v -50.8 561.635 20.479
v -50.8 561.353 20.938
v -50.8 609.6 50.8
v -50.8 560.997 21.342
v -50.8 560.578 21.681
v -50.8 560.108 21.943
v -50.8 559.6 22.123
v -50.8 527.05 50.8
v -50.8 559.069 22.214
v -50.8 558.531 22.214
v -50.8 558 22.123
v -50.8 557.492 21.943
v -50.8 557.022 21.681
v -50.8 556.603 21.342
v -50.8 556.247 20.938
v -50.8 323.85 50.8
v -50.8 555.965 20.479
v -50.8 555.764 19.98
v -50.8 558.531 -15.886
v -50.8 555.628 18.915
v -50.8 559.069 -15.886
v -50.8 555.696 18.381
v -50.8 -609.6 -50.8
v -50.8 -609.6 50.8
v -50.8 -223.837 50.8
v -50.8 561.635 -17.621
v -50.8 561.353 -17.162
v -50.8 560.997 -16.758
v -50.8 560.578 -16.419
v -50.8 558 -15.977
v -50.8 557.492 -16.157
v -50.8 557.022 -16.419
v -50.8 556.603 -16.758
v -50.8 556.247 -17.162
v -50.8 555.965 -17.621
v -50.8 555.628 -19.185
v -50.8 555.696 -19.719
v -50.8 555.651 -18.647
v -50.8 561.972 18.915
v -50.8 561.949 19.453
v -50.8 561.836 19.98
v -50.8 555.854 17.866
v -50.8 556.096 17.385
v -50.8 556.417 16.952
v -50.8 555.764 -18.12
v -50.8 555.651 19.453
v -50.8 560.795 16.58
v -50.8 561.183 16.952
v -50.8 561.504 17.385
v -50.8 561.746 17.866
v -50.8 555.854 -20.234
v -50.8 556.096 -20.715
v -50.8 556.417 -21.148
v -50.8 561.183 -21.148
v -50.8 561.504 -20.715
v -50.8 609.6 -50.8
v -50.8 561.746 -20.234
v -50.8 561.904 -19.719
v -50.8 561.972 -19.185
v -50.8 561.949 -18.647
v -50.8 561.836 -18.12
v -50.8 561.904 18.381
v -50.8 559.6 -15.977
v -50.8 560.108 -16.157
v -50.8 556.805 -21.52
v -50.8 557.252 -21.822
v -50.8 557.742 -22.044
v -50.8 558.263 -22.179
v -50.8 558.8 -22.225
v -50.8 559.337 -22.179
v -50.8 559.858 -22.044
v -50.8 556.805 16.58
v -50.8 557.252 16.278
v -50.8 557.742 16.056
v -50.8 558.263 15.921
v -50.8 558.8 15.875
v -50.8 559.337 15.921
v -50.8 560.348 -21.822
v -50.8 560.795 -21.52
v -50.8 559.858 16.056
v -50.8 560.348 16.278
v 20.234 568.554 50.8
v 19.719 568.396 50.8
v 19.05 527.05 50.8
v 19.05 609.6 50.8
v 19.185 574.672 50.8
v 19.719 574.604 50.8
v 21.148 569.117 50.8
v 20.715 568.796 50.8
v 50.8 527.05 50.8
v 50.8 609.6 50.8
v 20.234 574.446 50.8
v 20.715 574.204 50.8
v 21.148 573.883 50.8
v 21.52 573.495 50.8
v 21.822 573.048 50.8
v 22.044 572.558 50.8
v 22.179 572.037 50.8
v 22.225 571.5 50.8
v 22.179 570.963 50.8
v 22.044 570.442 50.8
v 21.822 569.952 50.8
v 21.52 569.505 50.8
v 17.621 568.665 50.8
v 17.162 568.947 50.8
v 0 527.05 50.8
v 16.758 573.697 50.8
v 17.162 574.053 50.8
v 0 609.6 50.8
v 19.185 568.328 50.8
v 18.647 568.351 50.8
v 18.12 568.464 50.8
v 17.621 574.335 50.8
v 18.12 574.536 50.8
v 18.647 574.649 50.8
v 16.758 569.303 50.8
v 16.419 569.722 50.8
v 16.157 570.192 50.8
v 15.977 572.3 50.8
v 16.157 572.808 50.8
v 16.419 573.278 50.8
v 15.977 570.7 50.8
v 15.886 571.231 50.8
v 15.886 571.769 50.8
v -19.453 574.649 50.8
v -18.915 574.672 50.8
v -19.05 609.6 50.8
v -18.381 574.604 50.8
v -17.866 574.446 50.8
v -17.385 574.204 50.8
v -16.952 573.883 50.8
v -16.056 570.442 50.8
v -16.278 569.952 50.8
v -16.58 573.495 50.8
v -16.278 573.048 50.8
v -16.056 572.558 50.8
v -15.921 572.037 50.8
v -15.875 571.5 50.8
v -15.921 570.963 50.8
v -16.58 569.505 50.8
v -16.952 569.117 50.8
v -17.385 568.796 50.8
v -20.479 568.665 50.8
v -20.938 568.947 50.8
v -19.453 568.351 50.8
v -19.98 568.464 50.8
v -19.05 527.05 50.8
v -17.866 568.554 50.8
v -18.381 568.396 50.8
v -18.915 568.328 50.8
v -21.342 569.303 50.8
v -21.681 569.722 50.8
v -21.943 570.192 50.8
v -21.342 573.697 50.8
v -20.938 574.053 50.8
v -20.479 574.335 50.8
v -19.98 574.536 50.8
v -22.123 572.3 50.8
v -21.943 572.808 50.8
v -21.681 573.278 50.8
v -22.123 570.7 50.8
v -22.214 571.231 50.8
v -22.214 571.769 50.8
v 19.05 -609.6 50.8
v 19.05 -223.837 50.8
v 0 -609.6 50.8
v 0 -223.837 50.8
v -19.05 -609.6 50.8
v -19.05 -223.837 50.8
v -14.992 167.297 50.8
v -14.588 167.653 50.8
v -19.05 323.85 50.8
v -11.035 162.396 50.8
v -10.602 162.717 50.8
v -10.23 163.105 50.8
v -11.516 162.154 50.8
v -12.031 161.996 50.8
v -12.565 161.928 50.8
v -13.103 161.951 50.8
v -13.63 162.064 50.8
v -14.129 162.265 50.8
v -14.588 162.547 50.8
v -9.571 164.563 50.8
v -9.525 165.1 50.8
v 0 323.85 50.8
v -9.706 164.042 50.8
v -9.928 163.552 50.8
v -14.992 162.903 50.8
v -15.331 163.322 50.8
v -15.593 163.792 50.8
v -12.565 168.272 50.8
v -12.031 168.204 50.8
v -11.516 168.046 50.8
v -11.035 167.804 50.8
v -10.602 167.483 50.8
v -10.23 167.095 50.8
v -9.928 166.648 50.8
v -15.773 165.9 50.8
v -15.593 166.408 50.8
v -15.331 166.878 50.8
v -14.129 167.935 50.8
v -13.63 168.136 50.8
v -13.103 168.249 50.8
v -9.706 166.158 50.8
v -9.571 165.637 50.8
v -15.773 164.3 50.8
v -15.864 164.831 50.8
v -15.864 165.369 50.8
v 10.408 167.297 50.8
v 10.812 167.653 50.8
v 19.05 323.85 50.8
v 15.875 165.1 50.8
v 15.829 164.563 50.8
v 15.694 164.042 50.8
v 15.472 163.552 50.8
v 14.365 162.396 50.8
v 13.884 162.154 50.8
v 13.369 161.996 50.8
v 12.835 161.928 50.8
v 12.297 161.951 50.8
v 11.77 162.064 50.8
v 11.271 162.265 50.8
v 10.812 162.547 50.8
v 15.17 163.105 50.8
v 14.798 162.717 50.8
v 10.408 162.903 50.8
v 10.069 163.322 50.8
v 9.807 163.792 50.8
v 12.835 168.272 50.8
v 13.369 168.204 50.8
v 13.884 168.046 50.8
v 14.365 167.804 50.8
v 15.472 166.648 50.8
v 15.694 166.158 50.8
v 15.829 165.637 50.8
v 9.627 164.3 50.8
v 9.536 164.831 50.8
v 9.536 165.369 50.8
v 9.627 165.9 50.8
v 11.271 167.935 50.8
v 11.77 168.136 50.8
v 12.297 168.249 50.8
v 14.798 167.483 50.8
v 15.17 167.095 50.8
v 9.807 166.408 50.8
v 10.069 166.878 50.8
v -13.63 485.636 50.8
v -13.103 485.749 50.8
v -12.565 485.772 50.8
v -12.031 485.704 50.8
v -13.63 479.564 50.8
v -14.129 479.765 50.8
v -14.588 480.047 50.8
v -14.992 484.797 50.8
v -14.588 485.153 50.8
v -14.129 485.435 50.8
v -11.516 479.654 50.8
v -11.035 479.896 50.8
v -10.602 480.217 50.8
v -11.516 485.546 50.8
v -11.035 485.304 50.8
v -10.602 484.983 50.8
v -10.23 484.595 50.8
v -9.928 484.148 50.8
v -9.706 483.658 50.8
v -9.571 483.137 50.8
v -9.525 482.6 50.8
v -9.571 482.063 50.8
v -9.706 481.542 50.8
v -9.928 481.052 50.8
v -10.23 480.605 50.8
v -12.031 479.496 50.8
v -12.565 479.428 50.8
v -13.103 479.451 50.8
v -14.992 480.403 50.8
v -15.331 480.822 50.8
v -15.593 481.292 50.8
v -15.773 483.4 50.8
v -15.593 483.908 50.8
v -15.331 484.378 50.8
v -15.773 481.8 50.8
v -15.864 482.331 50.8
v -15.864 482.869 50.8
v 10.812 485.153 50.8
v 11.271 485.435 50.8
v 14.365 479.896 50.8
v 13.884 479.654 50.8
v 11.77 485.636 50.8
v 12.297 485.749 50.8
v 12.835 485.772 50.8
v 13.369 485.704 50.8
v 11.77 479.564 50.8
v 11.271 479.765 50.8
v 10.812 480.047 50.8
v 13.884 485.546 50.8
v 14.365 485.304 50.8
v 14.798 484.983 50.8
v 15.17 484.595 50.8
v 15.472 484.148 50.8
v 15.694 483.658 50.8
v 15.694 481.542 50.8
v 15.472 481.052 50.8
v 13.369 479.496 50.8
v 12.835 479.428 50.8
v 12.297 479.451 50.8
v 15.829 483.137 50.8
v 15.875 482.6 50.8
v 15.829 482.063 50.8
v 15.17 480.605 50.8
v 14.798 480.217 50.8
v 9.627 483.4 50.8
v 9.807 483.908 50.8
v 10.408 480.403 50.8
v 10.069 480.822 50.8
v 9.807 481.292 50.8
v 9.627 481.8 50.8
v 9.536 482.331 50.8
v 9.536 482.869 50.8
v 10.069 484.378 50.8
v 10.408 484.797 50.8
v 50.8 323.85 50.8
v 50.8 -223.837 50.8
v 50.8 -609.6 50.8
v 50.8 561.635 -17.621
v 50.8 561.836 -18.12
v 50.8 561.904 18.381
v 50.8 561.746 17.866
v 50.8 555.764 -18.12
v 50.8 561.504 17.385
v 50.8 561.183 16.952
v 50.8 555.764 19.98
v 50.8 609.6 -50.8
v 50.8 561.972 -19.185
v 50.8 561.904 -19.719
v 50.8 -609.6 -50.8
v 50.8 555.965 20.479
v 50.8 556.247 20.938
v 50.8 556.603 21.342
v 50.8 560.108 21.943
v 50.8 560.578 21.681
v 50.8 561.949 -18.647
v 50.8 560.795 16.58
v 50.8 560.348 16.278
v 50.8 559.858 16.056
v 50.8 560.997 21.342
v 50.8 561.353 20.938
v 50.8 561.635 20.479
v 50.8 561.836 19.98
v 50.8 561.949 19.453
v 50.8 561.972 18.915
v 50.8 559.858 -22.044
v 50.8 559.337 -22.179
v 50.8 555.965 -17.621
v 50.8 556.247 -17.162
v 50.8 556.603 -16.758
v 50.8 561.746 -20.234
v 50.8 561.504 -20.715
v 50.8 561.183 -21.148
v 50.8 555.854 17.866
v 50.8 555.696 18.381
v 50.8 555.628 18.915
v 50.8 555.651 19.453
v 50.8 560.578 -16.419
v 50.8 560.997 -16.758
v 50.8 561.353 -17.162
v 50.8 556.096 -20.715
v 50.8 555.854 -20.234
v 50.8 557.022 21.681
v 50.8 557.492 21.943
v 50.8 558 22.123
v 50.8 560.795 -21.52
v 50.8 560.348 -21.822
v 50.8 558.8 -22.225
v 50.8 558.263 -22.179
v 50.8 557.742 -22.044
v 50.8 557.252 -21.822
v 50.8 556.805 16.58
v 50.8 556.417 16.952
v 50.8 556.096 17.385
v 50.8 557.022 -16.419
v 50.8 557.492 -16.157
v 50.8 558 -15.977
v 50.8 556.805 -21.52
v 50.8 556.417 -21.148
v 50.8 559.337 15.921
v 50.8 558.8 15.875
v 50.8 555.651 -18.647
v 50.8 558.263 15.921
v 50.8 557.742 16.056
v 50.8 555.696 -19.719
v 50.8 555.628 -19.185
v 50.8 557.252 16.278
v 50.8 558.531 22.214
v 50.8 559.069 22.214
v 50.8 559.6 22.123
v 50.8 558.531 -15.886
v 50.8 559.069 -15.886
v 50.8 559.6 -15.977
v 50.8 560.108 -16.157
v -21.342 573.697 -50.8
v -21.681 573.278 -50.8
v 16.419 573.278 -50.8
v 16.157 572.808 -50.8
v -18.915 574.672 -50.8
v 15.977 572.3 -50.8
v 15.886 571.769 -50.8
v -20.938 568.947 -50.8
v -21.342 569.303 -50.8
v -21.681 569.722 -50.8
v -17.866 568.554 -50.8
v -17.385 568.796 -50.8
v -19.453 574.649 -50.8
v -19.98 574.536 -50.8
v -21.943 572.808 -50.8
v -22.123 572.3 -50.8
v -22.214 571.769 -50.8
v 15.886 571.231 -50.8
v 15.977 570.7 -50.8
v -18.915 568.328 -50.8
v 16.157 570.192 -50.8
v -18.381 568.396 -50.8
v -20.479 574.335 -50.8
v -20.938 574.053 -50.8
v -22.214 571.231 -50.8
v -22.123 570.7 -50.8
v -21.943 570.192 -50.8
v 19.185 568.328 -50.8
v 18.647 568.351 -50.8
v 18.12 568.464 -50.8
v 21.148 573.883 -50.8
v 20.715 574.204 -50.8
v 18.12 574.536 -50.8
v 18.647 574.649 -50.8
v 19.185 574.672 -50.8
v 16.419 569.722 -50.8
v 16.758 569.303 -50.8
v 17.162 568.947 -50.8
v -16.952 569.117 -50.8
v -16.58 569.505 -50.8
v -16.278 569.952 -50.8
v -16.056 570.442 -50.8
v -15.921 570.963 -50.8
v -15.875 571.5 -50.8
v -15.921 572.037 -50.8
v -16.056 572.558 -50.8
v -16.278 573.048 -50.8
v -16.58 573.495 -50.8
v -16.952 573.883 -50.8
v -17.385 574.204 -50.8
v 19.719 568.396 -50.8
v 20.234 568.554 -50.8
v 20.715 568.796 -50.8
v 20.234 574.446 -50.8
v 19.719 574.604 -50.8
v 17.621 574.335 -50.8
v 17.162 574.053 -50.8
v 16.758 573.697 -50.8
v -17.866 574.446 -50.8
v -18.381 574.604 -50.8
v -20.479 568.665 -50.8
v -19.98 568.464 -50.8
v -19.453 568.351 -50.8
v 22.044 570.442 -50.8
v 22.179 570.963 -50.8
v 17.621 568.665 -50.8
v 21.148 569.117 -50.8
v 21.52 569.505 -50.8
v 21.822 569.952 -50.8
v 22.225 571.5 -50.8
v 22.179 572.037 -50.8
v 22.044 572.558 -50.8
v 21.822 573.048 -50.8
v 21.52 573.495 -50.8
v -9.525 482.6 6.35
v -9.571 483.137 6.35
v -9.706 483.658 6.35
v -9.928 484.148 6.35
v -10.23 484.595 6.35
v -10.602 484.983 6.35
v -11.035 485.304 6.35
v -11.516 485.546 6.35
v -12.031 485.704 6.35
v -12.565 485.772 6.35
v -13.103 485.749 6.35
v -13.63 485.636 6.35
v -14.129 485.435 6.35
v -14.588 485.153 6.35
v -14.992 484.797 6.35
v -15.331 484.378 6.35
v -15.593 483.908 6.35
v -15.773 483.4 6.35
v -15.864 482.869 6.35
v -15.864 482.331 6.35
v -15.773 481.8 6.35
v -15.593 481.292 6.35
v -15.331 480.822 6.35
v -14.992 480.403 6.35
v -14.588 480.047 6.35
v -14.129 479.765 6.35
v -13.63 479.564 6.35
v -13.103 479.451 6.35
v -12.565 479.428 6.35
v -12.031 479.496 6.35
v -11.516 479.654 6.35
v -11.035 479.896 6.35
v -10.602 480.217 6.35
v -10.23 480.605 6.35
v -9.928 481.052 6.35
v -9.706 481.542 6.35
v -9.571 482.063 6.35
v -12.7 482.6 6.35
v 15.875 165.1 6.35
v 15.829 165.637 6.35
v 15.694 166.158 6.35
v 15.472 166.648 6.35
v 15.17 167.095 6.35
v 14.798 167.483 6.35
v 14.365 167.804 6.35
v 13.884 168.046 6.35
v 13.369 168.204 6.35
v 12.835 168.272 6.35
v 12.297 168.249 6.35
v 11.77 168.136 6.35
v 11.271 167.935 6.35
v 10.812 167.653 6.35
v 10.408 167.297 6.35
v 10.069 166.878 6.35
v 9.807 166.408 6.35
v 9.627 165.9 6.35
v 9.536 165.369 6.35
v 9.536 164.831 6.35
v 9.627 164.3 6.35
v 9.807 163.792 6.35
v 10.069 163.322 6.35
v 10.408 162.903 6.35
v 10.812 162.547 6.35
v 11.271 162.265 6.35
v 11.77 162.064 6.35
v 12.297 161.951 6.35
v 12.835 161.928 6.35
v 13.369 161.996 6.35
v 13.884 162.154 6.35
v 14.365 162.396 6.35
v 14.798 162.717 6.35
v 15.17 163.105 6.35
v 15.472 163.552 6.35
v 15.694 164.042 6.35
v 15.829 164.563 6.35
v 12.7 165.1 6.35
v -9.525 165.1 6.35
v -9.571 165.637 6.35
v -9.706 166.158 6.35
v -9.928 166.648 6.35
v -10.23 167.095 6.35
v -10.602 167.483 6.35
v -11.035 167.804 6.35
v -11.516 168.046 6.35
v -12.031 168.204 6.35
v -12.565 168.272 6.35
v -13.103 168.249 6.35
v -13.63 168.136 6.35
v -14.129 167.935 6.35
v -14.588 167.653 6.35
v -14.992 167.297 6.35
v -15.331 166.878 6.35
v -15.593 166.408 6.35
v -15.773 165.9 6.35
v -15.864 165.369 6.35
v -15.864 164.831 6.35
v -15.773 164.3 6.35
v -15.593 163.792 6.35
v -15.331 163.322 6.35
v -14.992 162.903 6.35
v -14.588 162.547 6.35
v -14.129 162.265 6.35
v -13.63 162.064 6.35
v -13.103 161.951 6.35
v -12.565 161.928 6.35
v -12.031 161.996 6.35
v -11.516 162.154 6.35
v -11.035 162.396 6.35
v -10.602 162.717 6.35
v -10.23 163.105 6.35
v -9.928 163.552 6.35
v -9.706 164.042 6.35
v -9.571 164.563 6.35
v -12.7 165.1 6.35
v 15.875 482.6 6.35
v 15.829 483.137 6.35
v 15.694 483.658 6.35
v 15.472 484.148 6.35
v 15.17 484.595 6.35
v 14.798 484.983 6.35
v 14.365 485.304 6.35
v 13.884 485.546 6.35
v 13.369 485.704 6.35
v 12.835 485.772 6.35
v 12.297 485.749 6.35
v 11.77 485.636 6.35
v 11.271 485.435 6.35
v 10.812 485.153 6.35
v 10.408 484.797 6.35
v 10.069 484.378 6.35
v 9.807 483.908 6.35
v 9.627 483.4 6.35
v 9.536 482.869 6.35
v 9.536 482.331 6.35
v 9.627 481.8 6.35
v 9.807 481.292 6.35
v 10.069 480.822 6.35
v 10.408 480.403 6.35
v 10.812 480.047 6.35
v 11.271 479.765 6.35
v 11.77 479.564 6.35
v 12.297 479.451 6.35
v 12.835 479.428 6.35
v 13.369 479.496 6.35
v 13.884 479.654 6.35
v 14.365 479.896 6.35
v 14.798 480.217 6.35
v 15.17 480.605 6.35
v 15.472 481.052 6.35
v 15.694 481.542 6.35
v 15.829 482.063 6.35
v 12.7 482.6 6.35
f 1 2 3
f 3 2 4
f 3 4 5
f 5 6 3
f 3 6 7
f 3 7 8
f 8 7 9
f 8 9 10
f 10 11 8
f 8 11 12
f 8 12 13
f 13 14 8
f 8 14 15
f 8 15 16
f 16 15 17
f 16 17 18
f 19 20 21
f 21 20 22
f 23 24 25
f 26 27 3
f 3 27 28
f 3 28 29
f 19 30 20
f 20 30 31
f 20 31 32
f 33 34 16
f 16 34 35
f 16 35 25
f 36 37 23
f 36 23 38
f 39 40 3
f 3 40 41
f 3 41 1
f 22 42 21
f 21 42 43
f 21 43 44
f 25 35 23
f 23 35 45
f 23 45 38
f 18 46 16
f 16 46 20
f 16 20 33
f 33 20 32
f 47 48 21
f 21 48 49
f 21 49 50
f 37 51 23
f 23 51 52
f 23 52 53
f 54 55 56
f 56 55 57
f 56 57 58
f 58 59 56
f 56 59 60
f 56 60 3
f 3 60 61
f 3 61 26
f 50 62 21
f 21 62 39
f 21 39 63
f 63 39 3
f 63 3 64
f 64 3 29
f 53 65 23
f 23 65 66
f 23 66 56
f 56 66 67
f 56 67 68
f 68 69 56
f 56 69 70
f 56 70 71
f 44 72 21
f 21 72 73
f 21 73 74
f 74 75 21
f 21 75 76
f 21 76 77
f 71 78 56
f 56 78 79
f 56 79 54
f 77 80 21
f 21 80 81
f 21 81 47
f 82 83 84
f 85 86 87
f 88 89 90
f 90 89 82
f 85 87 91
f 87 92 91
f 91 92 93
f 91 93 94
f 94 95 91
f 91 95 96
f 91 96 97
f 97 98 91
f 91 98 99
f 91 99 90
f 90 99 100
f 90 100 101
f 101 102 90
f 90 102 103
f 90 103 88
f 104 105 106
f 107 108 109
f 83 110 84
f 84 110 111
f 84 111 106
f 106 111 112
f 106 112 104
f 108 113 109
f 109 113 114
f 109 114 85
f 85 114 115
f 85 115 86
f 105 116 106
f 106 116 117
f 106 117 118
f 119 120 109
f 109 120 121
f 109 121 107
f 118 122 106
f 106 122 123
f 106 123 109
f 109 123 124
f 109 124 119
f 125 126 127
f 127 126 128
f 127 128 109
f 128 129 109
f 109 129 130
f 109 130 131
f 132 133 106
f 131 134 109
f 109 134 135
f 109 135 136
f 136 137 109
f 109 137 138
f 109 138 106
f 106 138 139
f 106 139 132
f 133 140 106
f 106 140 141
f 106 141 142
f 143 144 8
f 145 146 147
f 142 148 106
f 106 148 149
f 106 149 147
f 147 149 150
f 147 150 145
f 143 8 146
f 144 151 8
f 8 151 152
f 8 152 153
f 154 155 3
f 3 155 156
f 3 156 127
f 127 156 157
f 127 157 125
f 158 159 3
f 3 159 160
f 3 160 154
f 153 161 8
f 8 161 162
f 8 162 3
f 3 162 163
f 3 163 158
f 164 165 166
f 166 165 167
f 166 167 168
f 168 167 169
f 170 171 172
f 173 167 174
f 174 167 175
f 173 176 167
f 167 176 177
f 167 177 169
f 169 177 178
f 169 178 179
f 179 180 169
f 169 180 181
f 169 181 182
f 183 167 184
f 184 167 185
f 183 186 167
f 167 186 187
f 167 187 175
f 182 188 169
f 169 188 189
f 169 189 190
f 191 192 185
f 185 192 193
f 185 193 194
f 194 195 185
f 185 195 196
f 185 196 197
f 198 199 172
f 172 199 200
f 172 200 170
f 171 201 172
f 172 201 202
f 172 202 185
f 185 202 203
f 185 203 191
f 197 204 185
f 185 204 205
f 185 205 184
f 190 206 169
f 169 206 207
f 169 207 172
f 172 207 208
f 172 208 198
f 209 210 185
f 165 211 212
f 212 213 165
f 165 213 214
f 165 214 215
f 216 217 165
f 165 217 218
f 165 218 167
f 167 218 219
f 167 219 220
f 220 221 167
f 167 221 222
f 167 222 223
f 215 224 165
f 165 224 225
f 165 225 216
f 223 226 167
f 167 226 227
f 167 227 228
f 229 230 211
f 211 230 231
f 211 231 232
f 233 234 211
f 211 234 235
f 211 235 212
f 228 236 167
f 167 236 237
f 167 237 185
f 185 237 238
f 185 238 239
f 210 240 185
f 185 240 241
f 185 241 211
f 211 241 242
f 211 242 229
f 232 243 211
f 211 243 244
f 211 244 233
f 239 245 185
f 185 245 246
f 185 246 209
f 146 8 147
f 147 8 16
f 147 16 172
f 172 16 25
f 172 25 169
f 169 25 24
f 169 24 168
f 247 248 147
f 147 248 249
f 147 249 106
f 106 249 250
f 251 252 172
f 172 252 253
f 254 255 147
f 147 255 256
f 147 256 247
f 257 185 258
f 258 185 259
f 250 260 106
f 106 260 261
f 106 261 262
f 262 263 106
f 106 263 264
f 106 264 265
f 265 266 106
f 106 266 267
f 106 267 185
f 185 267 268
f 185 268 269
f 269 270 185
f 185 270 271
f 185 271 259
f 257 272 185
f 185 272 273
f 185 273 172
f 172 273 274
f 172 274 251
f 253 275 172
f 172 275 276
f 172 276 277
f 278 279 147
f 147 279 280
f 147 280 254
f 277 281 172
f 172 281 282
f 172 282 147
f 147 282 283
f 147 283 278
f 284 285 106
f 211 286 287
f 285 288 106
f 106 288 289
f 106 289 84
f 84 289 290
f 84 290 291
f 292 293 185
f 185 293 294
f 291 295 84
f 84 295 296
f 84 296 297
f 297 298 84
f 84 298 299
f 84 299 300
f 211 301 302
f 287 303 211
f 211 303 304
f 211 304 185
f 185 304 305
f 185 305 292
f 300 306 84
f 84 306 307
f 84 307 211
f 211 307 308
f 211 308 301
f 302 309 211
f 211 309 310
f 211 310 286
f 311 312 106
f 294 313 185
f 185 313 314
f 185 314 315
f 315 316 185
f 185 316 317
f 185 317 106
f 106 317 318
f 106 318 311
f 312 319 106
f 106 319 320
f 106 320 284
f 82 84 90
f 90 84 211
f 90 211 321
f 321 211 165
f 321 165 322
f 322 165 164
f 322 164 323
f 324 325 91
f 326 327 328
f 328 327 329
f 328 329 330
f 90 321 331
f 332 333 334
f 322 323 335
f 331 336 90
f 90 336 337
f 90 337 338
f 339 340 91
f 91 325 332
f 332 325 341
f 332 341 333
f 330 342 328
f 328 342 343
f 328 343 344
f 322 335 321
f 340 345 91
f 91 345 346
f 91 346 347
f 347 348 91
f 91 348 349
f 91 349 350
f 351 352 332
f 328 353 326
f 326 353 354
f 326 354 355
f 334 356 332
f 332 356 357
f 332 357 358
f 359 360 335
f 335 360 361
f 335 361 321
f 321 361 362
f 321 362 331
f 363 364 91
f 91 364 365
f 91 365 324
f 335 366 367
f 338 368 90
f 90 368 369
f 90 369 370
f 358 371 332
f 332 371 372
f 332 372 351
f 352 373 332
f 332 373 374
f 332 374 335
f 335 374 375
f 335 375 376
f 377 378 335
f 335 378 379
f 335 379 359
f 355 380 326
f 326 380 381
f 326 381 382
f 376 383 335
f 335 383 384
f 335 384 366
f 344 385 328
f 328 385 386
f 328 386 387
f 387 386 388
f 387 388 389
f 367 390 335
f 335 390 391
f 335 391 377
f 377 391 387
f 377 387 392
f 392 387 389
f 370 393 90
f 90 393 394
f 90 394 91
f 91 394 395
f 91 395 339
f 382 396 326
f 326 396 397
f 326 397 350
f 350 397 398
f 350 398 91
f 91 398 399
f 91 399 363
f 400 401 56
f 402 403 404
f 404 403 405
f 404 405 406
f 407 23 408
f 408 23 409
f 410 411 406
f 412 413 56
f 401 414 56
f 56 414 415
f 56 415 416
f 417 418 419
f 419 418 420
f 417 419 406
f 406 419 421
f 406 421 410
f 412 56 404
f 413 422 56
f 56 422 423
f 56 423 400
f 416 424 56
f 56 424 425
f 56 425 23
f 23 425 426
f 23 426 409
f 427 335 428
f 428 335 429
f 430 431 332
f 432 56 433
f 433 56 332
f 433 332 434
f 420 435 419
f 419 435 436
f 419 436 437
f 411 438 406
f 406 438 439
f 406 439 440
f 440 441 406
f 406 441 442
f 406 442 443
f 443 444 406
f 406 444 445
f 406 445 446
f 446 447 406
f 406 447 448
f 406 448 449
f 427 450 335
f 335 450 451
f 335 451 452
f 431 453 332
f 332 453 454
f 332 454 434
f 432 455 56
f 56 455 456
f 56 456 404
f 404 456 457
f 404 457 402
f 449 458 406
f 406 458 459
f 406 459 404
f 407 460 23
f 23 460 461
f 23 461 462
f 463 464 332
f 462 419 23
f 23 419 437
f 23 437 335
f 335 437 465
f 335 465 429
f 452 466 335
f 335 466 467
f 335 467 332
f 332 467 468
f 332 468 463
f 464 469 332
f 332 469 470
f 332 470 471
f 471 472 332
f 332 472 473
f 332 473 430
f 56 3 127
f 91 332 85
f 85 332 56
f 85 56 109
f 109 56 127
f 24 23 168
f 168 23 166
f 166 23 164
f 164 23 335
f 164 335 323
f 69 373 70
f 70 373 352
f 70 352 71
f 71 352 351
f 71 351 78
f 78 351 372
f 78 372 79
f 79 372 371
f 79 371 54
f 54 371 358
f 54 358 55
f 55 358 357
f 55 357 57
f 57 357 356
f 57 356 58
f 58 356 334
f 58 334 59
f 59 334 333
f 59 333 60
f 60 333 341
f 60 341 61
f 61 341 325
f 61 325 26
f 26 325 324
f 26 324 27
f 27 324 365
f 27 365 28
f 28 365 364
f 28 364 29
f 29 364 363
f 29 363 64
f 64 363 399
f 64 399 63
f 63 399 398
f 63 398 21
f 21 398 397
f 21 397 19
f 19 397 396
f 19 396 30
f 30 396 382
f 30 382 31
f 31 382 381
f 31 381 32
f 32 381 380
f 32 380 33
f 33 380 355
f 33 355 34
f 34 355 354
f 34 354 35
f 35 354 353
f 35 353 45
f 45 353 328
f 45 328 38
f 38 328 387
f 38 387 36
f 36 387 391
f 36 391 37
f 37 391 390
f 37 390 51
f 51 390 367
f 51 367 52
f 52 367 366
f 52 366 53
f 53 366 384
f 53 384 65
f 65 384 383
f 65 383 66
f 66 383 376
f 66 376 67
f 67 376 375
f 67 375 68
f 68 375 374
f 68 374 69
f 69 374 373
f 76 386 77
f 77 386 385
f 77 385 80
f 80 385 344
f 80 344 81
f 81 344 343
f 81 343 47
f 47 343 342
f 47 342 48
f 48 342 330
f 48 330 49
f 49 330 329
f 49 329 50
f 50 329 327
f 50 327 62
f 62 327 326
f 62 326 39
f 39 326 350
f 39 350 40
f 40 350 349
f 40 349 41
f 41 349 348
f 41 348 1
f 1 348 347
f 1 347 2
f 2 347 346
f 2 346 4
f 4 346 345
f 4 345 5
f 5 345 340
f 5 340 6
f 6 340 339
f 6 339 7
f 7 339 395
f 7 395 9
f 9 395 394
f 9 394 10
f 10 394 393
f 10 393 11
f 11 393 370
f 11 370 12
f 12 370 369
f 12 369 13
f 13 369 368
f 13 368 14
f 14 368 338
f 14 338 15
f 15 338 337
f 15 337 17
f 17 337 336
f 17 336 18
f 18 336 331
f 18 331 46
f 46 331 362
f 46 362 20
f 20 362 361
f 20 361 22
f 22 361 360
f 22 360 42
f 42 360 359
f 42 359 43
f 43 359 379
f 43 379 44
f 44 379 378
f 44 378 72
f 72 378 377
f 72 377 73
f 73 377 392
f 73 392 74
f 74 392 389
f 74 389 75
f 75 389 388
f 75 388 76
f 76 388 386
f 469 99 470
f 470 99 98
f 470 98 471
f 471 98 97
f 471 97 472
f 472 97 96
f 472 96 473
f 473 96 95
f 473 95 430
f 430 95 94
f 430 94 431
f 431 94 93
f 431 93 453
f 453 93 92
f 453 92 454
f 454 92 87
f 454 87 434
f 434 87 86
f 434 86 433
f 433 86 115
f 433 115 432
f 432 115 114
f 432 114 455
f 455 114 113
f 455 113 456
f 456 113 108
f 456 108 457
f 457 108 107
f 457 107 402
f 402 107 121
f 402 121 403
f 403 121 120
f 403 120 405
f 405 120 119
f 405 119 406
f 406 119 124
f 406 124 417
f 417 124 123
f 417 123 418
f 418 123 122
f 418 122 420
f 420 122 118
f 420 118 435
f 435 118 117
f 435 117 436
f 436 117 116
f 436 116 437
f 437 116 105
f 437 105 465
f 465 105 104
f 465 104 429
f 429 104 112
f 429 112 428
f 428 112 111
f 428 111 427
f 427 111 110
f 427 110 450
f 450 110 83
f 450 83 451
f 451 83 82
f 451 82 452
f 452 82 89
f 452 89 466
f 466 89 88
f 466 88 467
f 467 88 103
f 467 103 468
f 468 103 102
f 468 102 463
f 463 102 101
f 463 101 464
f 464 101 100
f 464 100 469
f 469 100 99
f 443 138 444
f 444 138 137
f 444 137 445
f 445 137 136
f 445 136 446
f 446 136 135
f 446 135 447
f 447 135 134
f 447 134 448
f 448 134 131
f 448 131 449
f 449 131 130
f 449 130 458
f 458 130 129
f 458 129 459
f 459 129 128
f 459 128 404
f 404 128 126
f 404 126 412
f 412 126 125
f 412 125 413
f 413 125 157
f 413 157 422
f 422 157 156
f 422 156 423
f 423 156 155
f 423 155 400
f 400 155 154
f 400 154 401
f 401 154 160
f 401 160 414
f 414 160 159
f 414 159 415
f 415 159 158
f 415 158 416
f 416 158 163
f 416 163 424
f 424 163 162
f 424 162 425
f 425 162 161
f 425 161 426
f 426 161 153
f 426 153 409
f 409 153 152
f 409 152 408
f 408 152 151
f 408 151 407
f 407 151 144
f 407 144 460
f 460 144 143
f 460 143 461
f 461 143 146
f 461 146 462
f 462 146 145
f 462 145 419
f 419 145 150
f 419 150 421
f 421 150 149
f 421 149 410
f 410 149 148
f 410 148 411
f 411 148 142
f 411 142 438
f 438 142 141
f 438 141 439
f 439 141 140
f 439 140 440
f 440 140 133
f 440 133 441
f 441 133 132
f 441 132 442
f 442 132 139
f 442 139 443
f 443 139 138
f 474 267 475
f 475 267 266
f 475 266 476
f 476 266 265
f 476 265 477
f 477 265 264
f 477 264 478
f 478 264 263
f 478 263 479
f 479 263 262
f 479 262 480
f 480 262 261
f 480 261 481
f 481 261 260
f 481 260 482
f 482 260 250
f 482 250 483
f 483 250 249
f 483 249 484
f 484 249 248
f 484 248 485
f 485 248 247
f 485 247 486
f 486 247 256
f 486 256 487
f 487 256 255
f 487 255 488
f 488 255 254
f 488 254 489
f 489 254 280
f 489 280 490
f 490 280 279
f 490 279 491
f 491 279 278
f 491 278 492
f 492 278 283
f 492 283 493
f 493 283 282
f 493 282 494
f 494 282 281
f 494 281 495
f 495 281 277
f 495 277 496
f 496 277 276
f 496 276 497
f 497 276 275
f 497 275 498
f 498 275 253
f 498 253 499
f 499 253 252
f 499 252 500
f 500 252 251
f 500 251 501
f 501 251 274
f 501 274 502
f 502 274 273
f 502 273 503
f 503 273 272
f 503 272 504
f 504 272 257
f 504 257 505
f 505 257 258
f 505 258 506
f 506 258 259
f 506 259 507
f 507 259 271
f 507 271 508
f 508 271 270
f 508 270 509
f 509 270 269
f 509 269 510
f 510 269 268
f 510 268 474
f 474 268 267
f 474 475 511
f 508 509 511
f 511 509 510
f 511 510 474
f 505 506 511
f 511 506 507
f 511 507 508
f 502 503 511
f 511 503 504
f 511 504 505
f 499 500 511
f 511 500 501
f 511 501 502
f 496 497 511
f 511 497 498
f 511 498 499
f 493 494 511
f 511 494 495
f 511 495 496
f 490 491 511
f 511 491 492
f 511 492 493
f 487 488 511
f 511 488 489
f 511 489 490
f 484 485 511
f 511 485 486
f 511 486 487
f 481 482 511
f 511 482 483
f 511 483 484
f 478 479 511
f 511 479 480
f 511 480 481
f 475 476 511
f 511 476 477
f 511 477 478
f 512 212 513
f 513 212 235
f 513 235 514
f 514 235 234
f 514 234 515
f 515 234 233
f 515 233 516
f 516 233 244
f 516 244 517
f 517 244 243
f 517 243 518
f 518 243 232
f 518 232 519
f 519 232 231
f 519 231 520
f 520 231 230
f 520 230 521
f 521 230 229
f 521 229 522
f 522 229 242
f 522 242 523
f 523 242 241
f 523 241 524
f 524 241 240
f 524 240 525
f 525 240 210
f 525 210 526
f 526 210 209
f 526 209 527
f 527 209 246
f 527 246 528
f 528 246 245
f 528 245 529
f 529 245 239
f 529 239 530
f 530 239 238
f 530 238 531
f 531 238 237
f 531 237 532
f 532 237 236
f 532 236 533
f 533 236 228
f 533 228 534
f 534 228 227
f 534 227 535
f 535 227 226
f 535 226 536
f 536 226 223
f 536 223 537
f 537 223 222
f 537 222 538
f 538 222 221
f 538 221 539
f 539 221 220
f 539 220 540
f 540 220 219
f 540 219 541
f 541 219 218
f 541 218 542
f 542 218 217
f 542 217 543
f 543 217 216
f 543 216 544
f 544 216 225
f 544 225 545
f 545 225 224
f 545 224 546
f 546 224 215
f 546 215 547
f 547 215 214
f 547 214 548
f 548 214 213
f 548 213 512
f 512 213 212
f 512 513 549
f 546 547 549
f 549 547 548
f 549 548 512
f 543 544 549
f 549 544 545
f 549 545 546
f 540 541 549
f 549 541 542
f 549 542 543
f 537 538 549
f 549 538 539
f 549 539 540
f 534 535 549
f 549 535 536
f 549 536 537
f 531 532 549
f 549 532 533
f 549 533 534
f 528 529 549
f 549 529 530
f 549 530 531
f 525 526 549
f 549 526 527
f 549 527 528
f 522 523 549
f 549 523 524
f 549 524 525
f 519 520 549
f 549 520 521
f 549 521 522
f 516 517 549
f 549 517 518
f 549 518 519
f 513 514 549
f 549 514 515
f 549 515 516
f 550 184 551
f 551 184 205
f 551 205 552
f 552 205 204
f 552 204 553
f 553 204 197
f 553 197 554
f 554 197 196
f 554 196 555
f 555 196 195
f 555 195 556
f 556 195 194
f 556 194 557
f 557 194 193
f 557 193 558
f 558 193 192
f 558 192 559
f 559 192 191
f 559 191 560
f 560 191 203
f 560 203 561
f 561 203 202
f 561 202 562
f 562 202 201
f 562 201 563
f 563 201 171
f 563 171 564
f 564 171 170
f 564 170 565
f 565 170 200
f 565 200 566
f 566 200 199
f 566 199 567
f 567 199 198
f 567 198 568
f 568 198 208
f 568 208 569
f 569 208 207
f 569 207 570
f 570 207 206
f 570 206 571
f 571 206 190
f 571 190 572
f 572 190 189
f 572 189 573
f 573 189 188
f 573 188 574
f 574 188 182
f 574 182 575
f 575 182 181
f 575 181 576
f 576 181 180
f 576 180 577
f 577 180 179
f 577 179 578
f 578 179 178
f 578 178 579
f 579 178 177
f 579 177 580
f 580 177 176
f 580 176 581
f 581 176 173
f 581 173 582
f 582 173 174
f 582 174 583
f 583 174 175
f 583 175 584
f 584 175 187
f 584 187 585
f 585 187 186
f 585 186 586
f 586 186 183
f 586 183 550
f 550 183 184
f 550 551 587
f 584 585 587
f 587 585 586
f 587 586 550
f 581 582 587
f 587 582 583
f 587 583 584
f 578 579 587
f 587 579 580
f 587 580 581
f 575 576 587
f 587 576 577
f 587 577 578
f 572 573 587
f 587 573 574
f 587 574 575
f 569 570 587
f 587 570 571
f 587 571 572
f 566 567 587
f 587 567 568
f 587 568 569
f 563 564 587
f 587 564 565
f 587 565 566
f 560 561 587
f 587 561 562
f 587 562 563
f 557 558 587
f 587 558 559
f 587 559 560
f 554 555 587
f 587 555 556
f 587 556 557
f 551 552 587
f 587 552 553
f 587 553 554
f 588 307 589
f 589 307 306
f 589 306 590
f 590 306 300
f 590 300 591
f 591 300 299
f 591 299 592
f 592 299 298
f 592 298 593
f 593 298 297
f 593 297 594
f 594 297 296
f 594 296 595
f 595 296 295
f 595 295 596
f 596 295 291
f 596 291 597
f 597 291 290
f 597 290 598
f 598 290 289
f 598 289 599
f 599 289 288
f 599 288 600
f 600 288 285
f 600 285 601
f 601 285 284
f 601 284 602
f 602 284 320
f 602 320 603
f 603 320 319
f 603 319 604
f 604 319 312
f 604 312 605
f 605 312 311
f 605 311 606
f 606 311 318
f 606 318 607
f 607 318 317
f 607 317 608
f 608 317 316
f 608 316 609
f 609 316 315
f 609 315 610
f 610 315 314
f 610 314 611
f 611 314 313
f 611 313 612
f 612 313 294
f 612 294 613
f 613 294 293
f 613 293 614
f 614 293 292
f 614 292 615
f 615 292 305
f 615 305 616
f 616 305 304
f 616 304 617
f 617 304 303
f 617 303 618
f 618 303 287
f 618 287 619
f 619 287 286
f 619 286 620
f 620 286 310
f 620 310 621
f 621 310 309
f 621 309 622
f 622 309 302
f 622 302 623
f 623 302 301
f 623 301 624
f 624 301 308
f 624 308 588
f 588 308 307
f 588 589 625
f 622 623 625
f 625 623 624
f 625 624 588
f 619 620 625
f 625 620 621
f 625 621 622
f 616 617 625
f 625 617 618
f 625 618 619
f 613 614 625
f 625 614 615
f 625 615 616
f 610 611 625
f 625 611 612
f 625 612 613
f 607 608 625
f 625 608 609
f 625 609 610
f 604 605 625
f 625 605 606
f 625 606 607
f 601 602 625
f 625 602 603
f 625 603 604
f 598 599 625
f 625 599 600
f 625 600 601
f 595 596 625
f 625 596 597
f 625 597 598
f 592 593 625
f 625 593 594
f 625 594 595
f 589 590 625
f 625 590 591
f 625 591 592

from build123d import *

# Parameters (mm, degrees)
SKETCH1_W           = 101.6
SKETCH1_H           = 101.6
BOSS_EXTRUDE1_DEPTH = 609.6
SKETCH2_R           = 3.175
CUT_EXTRUDE1_DEPTH  = 621.093025279
SKETCH3_R           = 3.175
CUT_EXTRUDE2_DEPTH  = 621.093025279
SKETCH4_R           = 3.175
CUT_EXTRUDE3_DEPTH  = 44.45


with BuildPart() as part:
    # Sketch1 → Boss-Extrude1 (new, symmetric)
    with BuildSketch(Plane(origin=(0, 0, 0), x_dir=(1, 0, 0), z_dir=(0, 1, 0))):
        Rectangle(SKETCH1_W, SKETCH1_H)
    extrude(amount=BOSS_EXTRUDE1_DEPTH, both=True)

    # Sketch2 → Cut-Extrude1 (cut, through all)
    with BuildSketch(Plane(origin=(50.8, 0, 0), x_dir=(0, 0, -1), z_dir=(1, 0, 0))):
        with Locations((-19.05, 558.8)):
            Circle(SKETCH2_R)
        with Locations((19.05, 558.8)):
            Circle(SKETCH2_R)
    extrude(amount=-CUT_EXTRUDE1_DEPTH, mode=Mode.SUBTRACT)

    # Sketch3 → Cut-Extrude2 (cut, through all)
    with BuildSketch(Plane.XY.offset(50.8)):
        with Locations((-19.05, 571.5)):
            Circle(SKETCH3_R)
        with Locations((19.05, 571.5)):
            Circle(SKETCH3_R)
    extrude(amount=-CUT_EXTRUDE2_DEPTH, mode=Mode.SUBTRACT)

    # Sketch4 → Cut-Extrude3 (cut)
    with BuildSketch(Plane.XY.offset(50.8)):
        with Locations((-12.7, 482.6)):
            Circle(SKETCH4_R)
        with Locations((12.7, 482.6)):
            Circle(SKETCH4_R)
        with Locations((-12.7, 165.1)):
            Circle(SKETCH4_R)
        with Locations((12.7, 165.1)):
            Circle(SKETCH4_R)
    extrude(amount=-CUT_EXTRUDE3_DEPTH, mode=Mode.SUBTRACT)


solid = part.part
